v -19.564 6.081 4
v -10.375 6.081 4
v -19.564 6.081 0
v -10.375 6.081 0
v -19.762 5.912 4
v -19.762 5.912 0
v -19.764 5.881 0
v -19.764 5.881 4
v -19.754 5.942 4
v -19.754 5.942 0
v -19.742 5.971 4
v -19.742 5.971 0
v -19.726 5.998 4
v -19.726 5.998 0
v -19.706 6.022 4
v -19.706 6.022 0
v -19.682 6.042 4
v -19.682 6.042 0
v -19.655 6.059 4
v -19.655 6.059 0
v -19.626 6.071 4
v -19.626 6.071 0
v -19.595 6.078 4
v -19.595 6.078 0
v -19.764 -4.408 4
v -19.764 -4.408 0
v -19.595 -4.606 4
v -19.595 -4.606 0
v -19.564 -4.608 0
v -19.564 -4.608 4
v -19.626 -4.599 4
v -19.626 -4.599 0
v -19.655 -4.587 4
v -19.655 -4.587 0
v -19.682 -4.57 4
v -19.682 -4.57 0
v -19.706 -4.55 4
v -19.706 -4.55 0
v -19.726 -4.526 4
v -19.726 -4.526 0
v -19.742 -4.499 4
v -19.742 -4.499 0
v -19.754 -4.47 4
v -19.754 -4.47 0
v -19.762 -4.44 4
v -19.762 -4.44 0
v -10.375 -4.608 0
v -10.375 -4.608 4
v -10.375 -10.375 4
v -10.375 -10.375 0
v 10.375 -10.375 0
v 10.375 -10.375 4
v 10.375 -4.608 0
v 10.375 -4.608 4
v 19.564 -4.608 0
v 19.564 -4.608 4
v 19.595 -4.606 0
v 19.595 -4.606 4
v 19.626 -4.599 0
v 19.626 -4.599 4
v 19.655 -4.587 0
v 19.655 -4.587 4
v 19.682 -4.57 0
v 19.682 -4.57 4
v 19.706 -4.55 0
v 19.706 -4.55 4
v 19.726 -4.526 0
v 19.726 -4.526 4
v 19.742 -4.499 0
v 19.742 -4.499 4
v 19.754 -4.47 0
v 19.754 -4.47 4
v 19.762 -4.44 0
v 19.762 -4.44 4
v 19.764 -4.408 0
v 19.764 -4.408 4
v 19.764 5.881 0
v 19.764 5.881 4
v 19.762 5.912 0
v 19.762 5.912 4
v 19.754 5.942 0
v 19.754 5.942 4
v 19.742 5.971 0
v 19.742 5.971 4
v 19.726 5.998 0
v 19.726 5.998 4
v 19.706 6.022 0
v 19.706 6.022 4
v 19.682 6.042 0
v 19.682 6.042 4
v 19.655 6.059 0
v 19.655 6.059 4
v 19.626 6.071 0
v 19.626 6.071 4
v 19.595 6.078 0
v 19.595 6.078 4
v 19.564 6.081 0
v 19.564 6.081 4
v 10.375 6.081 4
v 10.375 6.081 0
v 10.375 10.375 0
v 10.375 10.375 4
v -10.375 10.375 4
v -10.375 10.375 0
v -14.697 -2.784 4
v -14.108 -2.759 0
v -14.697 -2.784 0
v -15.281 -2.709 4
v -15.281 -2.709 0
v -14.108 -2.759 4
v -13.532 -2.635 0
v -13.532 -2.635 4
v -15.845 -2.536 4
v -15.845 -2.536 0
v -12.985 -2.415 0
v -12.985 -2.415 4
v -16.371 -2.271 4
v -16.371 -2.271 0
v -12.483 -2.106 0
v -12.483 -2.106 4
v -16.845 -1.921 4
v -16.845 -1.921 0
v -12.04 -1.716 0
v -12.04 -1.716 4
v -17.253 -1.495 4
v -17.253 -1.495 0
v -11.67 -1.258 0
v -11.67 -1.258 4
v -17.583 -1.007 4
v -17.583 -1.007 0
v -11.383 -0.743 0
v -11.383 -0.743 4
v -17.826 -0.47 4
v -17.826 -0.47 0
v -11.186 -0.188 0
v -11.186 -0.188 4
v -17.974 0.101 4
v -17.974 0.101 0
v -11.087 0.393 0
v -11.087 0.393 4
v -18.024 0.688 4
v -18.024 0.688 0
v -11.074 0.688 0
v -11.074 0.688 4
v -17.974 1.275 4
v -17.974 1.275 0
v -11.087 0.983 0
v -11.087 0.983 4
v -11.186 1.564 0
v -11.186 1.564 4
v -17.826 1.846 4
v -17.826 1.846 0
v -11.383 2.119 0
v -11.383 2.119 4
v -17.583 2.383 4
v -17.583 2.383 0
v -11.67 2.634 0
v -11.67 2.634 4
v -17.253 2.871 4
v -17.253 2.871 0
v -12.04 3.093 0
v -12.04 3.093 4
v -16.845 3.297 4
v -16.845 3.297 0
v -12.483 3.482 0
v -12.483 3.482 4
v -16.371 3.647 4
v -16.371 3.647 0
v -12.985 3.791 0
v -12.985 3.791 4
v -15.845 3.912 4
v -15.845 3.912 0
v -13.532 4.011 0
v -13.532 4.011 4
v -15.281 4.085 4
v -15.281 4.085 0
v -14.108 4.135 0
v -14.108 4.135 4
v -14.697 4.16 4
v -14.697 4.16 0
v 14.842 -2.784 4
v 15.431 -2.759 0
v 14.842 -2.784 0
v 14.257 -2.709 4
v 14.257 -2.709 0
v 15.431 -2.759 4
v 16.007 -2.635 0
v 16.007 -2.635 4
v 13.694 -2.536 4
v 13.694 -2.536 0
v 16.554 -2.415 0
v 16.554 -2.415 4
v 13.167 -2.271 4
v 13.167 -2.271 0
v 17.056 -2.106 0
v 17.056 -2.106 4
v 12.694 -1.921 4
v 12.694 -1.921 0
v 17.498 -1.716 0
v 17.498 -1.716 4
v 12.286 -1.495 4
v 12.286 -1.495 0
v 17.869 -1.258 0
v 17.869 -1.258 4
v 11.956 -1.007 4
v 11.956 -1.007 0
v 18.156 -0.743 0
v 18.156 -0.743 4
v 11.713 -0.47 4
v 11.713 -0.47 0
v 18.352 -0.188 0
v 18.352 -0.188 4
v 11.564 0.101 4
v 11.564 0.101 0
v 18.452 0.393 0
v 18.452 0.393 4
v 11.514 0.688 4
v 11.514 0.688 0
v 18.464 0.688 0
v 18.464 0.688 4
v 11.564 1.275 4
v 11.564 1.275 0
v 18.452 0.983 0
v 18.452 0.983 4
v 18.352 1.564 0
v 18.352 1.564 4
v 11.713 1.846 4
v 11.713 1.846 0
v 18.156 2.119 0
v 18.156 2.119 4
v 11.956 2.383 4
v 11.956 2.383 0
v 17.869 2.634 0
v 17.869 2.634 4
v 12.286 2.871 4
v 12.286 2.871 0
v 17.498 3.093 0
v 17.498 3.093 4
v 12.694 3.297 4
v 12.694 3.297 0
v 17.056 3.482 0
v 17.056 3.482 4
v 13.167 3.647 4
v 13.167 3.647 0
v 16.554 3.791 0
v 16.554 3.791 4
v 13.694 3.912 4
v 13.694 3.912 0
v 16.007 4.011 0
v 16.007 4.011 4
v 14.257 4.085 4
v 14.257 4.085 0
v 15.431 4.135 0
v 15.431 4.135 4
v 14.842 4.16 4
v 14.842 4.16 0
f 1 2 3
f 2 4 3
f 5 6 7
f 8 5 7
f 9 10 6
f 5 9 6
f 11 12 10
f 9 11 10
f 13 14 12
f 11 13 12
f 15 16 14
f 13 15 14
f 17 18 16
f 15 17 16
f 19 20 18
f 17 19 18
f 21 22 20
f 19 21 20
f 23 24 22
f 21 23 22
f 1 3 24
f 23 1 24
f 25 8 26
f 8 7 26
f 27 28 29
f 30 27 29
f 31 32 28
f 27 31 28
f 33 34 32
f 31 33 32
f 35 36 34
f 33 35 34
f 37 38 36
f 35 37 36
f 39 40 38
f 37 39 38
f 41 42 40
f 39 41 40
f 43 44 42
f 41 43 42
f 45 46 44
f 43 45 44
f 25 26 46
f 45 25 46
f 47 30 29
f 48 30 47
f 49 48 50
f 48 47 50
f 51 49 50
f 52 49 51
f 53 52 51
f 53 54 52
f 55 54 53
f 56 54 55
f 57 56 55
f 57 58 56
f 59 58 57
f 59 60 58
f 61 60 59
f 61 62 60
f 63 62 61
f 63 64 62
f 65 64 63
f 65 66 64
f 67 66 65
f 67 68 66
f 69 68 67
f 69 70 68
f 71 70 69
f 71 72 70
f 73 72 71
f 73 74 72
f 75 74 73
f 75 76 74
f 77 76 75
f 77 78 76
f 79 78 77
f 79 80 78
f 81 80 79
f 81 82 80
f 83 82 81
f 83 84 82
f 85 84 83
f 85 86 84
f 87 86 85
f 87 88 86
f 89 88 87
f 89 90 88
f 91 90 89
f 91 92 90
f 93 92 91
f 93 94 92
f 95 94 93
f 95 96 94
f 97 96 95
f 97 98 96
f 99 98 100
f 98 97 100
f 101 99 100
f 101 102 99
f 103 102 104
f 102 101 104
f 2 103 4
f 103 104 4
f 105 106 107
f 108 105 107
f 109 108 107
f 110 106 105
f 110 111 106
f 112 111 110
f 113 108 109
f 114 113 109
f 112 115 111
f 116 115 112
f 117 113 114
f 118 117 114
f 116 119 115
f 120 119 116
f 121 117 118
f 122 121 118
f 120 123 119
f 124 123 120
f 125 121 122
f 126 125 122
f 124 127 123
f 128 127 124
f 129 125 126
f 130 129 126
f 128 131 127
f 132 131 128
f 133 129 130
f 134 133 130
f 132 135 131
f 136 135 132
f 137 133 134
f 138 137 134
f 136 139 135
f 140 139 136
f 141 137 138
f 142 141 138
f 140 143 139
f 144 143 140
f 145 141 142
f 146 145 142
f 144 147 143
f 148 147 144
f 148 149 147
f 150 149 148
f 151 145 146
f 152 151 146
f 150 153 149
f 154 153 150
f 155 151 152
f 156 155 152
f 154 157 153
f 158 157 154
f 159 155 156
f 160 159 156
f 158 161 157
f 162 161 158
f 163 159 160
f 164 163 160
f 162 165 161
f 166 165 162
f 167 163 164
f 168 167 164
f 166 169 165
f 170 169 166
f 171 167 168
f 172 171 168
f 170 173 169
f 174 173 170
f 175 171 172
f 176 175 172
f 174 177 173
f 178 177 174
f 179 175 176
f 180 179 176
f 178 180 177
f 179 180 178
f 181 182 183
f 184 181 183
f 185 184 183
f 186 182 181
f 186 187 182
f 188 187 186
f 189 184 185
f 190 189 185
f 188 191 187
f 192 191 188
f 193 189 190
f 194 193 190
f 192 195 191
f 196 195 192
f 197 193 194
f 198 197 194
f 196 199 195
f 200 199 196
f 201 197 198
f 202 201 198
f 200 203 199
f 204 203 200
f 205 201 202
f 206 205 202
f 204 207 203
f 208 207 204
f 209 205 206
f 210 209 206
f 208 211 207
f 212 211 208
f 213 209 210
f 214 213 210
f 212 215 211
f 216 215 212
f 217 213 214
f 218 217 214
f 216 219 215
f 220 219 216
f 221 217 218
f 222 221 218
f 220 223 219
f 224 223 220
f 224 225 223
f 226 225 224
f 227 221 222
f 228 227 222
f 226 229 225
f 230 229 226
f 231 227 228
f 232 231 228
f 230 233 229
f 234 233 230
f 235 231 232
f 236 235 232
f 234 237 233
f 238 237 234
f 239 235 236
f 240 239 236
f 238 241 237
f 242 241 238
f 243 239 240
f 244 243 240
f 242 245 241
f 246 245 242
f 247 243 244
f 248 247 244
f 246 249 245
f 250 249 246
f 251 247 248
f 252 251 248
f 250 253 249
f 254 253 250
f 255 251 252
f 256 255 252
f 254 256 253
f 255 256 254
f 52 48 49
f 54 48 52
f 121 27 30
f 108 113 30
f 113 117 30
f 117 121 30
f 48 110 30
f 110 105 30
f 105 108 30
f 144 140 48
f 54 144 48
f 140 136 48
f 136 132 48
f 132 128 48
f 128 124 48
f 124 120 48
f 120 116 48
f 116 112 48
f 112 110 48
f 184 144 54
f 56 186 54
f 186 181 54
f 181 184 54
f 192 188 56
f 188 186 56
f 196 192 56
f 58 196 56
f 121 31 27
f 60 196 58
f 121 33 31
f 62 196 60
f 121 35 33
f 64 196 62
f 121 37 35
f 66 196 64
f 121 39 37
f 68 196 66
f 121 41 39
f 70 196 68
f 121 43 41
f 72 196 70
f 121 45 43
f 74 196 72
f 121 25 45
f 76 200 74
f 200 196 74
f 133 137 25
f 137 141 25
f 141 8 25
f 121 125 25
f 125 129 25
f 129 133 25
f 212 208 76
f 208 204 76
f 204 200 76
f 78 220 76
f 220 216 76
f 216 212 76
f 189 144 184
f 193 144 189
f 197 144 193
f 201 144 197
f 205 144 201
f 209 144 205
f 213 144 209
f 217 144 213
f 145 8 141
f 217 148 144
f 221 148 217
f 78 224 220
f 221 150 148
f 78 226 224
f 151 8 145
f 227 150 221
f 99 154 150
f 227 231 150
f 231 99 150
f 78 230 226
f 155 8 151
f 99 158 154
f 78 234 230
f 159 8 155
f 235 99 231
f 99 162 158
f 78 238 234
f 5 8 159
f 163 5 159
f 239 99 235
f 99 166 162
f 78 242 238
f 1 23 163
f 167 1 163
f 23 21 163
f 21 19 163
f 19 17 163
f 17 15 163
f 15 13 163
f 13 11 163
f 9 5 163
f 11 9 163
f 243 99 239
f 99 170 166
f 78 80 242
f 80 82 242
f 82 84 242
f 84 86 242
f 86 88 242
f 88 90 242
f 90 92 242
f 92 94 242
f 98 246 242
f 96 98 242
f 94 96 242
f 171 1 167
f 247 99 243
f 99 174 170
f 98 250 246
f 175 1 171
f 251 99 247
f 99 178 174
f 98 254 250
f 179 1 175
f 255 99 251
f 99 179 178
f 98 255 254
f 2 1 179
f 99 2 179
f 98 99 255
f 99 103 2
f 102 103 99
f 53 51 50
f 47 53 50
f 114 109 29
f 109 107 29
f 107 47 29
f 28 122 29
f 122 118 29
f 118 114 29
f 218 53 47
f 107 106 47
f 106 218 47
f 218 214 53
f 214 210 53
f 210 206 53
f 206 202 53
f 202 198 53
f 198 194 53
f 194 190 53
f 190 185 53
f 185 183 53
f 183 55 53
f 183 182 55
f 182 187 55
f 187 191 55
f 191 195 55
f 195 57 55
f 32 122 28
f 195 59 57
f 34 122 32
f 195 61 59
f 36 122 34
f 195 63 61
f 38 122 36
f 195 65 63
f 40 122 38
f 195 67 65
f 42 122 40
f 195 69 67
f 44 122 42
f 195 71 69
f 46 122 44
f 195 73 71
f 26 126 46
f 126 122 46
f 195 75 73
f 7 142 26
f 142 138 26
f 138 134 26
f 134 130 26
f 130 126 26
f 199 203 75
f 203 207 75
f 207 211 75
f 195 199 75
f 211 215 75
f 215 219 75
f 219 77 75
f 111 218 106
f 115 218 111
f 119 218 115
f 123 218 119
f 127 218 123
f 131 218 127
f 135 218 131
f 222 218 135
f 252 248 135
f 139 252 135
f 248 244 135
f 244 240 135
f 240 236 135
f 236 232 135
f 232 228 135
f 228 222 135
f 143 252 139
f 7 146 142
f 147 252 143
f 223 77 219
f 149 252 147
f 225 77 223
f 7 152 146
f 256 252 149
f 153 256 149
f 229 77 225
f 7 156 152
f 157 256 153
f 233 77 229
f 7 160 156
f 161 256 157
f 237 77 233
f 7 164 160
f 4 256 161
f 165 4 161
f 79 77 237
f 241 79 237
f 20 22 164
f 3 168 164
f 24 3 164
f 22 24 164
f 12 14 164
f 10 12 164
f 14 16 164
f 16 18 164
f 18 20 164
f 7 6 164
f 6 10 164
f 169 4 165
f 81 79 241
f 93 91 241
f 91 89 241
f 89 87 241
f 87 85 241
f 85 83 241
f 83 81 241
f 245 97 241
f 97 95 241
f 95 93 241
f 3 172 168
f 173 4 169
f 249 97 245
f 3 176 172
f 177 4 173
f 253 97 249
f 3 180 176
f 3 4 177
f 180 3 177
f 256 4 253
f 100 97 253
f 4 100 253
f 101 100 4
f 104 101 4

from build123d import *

# Parameters (mm, degrees)
SKETCH1_R           = 3.475
BOSS_EXTRUDE1_DEPTH = 4


with BuildPart() as part:
    # Sketch1 → Boss-Extrude1 (new body)
    # profile 1 of 3: a face of its own
    with BuildSketch(Plane.XY):
        with BuildLine():
            Line((-10.375, 6.080549062), (-19.564197283, 6.080549062))
            ThreePointArc((-19.564197283, 6.080549062), (-19.70561864, 6.021970418), (-19.764197283, 5.880549062))
            Line((-19.764197283, 5.880549062), (-19.764197283, -4.408416131))
            ThreePointArc((-19.764197283, -4.408416131), (-19.70561864, -4.549837487), (-19.564197283, -4.608416131))
            Line((-19.564197283, -4.608416131), (-10.375, -4.608416131))
            Line((-10.375, -4.608416131), (-10.375, 6.080549062))
        make_face()
        with Locations((-14.549223744, 0.688062131)):
            Circle(SKETCH1_R, mode=Mode.SUBTRACT)
    # profile 2 of 3: a face of its own
    with BuildSketch(Plane.XY):
        Polygon((-10.375, 10.375), (-10.375, 6.080549062), (-10.375, -4.608416131), (-10.375, -10.375), (10.375, -10.375), (10.375, -4.608416131), (10.375, 6.080549062), (10.375, 10.375), align=None)
    # profile 3 of 3: a face of its own
    with BuildSketch(Plane.XY):
        with BuildLine():
            Line((19.764197283, 5.880549062), (19.764197283, -4.408416131))
            ThreePointArc((19.764197283, -4.408416131), (19.70561864, -4.549837487), (19.564197283, -4.608416131))
            Line((19.564197283, -4.608416131), (10.375, -4.608416131))
            Line((10.375, -4.608416131), (10.375, 6.080549062))
            Line((10.375, 6.080549062), (19.564197283, 6.080549062))
            ThreePointArc((19.564197283, 6.080549062), (19.70561864, 6.021970418), (19.764197283, 5.880549062))
        make_face()
        with Locations((14.989443539, 0.688062131)):
            Circle(SKETCH1_R, mode=Mode.SUBTRACT)
    extrude(amount=BOSS_EXTRUDE1_DEPTH)


solid = part.part
